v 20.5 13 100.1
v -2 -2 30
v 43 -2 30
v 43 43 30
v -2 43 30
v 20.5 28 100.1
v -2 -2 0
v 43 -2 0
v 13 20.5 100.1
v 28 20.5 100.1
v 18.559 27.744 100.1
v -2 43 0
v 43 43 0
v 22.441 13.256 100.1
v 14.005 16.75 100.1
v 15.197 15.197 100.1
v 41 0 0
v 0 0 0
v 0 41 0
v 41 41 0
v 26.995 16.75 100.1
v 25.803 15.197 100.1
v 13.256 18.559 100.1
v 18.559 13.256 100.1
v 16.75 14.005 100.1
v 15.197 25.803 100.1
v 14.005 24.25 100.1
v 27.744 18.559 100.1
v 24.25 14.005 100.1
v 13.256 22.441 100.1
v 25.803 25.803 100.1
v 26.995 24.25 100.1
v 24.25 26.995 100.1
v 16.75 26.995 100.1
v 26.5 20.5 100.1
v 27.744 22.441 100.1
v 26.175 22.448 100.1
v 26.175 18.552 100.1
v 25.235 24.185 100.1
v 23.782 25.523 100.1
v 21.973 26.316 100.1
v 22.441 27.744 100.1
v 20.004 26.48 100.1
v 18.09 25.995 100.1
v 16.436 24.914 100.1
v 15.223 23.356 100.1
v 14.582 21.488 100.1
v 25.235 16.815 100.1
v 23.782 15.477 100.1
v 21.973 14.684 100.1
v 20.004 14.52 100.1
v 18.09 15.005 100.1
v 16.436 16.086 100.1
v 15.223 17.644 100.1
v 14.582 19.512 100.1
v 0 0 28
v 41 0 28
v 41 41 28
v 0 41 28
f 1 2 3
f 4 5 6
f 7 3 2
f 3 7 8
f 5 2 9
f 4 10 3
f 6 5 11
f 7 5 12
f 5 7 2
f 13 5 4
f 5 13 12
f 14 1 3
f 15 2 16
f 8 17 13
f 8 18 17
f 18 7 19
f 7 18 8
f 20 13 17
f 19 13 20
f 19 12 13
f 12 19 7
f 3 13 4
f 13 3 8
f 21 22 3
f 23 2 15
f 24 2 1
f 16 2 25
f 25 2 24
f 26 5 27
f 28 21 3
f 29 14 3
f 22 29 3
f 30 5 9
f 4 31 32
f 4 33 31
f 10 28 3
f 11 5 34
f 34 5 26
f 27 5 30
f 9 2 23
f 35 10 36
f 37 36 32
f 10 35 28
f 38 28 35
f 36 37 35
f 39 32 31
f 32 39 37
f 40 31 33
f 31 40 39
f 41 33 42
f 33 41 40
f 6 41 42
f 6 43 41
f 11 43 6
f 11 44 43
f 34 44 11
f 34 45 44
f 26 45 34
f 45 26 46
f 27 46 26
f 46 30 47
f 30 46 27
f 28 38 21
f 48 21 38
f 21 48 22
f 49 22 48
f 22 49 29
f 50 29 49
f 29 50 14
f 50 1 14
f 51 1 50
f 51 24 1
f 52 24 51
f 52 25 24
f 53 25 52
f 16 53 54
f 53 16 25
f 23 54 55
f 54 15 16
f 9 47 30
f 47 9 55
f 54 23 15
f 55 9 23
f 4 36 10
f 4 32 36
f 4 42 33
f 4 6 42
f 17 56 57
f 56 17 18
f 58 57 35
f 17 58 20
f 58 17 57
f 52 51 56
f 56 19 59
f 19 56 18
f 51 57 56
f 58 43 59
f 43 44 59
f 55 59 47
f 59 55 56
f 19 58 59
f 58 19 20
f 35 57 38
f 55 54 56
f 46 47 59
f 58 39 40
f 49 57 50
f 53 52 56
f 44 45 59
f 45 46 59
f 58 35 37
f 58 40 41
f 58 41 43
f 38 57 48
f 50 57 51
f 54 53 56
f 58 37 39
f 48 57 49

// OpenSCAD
// file: ssn/tools.scad
function multiply_elements(a, b) = [a[0] * b[0], a[1] * b[1], a[2] * b[2]];

// Create 4 Elements by shifting the children elements to the 4 corner points described by x/y of the center
module squareUp(center) {
	for (i = [0:1:$children-1]) {
		translate(multiply_elements(center, [1, 1, 1])) children(i);
		translate(multiply_elements(center, [-1, 1, 1])) children(i);
		translate(multiply_elements(center, [1, -1, 1])) children(i);
		translate(multiply_elements(center, [-1, -1, 1])) children(i);
	}
}

// Translate only in Z direction
module tZ(z) {
	translate([0,0,z])
	for (i = [0:1:$children-1]) {
		children(i);
	}
}


// Create a cube with rounded corners in x/y plane 
module rounded_cube_flat(p, r, center=false) {

	mov = center? [0,0,0] : [p[0]/2, p[1]/2];

	translate(mov) {
		hull() {
			squareUp([p[0]/2-r, p[1]/2-r, 0])
			cylinder(r=r, h=p[2], center=center);
		}
	}
}
// main file
use <ssn/tools.scad>

module conditional_subtract(screw_length) {
	if (screw_length == 0) {
		difference() {
			for (i = [0:1:$children-1]) {
				children(i);
			}
		}
	} else {
		for (i = [0:1:$children-1]) {
			children(i);
		}
	}
}

module fan(screw_length=0) {
	$fn=20;
	cube([41, 41, 28]);
	translate([33/2 + 4, 33/2 + 4, -screw_length])
	squareUp([36/2, 36/2, 0]) {
		cylinder(d=3., h=screw_length*2);
	}
}


module nozzle() {
	difference() {
		hull() {
			translate([-2, -2, 0])
			cube([45, 45, 30]);

			translate([41/2, 41/2, 100])
			cylinder(d=15, h=0.1);
		}
		hull() {
			fan(0);
			translate([41/2, 41/2, 100])
			cylinder(d=12, h=0.1);

		}
	}
}

nozzle();
